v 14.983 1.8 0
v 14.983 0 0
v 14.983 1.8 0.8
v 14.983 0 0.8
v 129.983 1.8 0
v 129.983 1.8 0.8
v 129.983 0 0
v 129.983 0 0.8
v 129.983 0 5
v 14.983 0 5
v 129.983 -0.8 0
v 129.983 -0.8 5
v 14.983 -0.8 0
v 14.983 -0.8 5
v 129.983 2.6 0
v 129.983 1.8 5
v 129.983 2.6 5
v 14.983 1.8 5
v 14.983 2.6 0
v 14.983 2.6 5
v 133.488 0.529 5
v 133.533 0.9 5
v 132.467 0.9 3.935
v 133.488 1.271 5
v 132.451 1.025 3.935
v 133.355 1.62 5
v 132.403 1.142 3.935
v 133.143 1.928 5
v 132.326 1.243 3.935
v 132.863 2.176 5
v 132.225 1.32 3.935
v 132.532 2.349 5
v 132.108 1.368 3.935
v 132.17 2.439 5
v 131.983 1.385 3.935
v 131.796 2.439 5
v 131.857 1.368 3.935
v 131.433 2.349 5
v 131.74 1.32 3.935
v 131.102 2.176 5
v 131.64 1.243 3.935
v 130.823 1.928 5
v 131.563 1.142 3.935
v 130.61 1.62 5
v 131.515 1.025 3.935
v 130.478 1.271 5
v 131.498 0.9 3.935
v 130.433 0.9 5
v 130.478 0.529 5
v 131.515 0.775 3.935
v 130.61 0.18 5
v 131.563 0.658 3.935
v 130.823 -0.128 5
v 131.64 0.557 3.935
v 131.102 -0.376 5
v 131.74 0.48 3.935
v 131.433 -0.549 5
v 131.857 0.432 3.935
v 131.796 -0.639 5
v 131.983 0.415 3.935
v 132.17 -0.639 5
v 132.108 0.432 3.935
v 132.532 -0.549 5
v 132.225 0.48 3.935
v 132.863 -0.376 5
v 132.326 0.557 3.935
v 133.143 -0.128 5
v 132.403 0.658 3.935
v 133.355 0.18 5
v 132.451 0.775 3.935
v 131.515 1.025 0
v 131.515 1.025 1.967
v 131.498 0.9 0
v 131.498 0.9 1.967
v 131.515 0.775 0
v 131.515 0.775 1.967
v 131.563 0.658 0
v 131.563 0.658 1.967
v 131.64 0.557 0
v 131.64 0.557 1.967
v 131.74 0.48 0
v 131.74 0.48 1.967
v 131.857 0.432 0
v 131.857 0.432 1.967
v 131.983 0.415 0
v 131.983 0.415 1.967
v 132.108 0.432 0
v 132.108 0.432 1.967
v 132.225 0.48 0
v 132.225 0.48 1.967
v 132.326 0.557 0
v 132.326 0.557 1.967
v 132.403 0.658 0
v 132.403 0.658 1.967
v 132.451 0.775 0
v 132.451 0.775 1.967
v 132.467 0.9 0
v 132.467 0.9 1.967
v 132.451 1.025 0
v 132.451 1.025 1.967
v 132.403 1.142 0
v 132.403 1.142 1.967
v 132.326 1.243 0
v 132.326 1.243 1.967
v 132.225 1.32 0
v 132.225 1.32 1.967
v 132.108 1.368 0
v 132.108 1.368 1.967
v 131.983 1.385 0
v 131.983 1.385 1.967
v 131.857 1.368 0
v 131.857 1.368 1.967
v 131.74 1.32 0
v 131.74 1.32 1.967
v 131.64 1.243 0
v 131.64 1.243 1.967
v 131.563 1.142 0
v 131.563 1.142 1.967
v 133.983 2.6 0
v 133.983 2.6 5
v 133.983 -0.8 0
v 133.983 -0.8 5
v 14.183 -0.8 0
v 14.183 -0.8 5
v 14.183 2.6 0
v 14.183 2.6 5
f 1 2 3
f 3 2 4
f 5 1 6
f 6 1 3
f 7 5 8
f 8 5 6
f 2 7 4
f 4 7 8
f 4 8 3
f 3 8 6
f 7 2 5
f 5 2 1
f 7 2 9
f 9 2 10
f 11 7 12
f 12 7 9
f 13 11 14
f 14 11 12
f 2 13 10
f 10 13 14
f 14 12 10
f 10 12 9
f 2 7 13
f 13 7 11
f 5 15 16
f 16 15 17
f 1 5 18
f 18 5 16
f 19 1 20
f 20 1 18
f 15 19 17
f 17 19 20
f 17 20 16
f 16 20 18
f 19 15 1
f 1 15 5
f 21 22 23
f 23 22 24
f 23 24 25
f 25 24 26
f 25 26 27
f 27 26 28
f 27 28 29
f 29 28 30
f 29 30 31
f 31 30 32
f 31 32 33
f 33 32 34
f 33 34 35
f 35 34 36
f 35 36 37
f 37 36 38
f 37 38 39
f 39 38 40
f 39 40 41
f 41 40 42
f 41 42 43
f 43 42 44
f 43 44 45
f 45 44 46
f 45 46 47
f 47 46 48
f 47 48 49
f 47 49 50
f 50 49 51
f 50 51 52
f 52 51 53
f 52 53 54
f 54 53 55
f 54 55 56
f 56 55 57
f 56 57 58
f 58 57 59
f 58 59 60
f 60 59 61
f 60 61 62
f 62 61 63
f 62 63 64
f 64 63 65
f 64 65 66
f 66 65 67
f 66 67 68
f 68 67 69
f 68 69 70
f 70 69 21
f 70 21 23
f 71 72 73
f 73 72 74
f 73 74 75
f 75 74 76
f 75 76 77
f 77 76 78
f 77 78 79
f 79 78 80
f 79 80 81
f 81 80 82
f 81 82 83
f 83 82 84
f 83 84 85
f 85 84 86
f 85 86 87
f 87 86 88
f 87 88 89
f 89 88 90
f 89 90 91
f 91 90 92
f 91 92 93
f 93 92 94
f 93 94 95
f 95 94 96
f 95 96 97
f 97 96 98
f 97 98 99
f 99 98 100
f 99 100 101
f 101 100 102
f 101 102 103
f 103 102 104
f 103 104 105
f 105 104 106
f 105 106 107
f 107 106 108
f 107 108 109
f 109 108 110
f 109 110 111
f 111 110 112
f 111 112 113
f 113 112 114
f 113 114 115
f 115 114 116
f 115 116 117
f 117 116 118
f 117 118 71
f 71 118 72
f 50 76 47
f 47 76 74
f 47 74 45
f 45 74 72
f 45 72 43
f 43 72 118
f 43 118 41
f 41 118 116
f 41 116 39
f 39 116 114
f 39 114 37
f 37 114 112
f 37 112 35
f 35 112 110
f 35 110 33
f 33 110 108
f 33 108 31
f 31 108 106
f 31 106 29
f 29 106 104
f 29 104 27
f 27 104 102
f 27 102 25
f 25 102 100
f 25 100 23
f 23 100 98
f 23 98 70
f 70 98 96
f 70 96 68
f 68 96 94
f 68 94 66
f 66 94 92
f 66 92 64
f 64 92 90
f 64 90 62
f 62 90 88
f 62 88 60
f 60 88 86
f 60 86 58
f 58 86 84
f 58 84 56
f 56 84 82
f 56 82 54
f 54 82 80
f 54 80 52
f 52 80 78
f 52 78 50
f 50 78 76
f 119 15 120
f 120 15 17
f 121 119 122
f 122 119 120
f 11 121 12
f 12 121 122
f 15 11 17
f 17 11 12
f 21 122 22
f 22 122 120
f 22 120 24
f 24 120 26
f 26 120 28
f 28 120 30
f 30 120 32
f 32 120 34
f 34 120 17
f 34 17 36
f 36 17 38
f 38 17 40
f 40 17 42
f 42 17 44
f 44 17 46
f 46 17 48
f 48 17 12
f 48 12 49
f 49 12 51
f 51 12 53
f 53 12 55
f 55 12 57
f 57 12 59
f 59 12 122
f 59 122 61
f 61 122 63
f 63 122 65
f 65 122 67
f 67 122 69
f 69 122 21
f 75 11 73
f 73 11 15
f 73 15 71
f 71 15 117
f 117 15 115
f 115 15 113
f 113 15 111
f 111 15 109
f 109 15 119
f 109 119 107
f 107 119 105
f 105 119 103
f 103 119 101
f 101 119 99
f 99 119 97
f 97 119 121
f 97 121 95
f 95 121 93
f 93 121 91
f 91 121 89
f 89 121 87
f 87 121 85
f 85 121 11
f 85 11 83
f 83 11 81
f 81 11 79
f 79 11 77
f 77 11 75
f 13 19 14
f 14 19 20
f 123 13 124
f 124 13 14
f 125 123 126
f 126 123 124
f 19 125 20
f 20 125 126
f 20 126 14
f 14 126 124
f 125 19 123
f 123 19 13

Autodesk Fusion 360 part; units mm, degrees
sketch "Esquisse1" plane through (0, 0, 0) normal (0, 0, 1) x (1, 0, 0) in component "edge"
  line L0 (14.9828, 0) -> (129.9828, 0)
  line L1 (129.9828, 0) -> (129.9828, -0.8)
  line L2 (129.9828, -0.8) -> (14.9828, -0.8)
  line L3 (14.9828, -0.8) -> (14.9828, 0)
  line L4 (14.9828, 0) -> (129.9828, 0)
  line L5 (129.9828, 0) -> (129.9828, 1.8)
  line L6 (129.9828, 1.8) -> (14.9828, 1.8)
  line L7 (14.9828, 1.8) -> (14.9828, 0)
  line L8 (14.9828, 1.8) -> (129.9828, 1.8)
  line L9 (129.9828, 1.8) -> (129.9828, 2.6)
  line L10 (129.9828, 2.6) -> (14.9828, 2.6)
  line L11 (14.9828, 2.6) -> (14.9828, 1.8)
  line L12 (129.9828, -0.8) -> (133.9828, -0.8)
  line L13 (133.9828, -0.8) -> (133.9828, 2.6)
  line L14 (133.9828, 2.6) -> (129.9828, 2.6)
  line L15 (129.9828, 2.6) -> (129.9828, -0.8)
  line L16 (14.9828, -0.8) -> (14.1828, -0.8)
  line L17 (14.1828, -0.8) -> (14.1828, 2.6)
  line L18 (14.1828, 2.6) -> (14.9828, 2.6)
  line L19 (14.9828, 2.6) -> (14.9828, -0.8)
  line L20 (129.9828, -0.8) -> (133.9828, 2.6) construction
  line L21 (133.9828, -0.8) -> (129.9828, 2.6) construction
  circle A0 centre (131.9828, 0.9) radius 0.7
  dimension "EdgePhotoLen" = 115
  dimension "d2" = 0.8
  dimension "d3" = 1.8
  dimension "d4" = 115
  dimension "d5" = 0.8
  dimension "d10" = 4
  dimension "d11" = 0.8
  dimension "d14" = 1.4
extrude "Extrusion1" add sketch "Esquisse1" along normal blind 0.8 contours L0 L4 L5 L6 L7 L8 L15 L19 makes body 1 in component "edge"
extrude "Extrusion2" add sketch "Esquisse1" along normal blind 5 separate body contours L0 L1 L2 L3 L4 L15 L19 | L6 L8 L9 L10 L11 L15 L19 makes body 2 at (91.6495, 2.6, 1.6667) makes body 3 at (53.3161, 0, 1.6667) in component "edge"
extrude "Extrusion3" add sketch "Esquisse1" along normal blind 5 separate body contours L3 L7 L11 L16 L17 L18 L19 | L1 L5 L9 L12 L13 L14 L15 | A0 makes body 4 at (14.9828, 0.3333, 1.6667) makes body 5 at (132.6495, 2.6, 1.6667) in component "edge"
sketch "Esquisse3" plane through (0, 0, 5) normal (0, 0, 1) x (-1, 0, 0)
  line L0 (-129.9828, -2.6) -> (-129.9828, 0.8)
  line L1 (-129.9828, 0.8) -> (-133.9828, 0.8)
  line L2 (-133.9828, 0.8) -> (-133.9828, -2.6)
  line L3 (-133.9828, -2.6) -> (-129.9828, -2.6)
  line L4 (-129.9828, -2.6) -> (-133.9828, 0.8) construction
  line L5 (-129.9828, 0.8) -> (-133.9828, -2.6) construction
  point P0 (-131.9828, -0.9)
hole "Perçage2" at (131.9828, 0.9, 5) direction (0, 0, -1) diameter 0.969 depth 8 tip angle 180 countersink diameter 3.1 countersink angle 90 bodies 5 in component "edge"
component "edge" placed x (1, 0, 0) y (0, 1, 0) z (0, 0, 1) at (0, 0, 0)
equation "d4 = EdgePhotoLen"
